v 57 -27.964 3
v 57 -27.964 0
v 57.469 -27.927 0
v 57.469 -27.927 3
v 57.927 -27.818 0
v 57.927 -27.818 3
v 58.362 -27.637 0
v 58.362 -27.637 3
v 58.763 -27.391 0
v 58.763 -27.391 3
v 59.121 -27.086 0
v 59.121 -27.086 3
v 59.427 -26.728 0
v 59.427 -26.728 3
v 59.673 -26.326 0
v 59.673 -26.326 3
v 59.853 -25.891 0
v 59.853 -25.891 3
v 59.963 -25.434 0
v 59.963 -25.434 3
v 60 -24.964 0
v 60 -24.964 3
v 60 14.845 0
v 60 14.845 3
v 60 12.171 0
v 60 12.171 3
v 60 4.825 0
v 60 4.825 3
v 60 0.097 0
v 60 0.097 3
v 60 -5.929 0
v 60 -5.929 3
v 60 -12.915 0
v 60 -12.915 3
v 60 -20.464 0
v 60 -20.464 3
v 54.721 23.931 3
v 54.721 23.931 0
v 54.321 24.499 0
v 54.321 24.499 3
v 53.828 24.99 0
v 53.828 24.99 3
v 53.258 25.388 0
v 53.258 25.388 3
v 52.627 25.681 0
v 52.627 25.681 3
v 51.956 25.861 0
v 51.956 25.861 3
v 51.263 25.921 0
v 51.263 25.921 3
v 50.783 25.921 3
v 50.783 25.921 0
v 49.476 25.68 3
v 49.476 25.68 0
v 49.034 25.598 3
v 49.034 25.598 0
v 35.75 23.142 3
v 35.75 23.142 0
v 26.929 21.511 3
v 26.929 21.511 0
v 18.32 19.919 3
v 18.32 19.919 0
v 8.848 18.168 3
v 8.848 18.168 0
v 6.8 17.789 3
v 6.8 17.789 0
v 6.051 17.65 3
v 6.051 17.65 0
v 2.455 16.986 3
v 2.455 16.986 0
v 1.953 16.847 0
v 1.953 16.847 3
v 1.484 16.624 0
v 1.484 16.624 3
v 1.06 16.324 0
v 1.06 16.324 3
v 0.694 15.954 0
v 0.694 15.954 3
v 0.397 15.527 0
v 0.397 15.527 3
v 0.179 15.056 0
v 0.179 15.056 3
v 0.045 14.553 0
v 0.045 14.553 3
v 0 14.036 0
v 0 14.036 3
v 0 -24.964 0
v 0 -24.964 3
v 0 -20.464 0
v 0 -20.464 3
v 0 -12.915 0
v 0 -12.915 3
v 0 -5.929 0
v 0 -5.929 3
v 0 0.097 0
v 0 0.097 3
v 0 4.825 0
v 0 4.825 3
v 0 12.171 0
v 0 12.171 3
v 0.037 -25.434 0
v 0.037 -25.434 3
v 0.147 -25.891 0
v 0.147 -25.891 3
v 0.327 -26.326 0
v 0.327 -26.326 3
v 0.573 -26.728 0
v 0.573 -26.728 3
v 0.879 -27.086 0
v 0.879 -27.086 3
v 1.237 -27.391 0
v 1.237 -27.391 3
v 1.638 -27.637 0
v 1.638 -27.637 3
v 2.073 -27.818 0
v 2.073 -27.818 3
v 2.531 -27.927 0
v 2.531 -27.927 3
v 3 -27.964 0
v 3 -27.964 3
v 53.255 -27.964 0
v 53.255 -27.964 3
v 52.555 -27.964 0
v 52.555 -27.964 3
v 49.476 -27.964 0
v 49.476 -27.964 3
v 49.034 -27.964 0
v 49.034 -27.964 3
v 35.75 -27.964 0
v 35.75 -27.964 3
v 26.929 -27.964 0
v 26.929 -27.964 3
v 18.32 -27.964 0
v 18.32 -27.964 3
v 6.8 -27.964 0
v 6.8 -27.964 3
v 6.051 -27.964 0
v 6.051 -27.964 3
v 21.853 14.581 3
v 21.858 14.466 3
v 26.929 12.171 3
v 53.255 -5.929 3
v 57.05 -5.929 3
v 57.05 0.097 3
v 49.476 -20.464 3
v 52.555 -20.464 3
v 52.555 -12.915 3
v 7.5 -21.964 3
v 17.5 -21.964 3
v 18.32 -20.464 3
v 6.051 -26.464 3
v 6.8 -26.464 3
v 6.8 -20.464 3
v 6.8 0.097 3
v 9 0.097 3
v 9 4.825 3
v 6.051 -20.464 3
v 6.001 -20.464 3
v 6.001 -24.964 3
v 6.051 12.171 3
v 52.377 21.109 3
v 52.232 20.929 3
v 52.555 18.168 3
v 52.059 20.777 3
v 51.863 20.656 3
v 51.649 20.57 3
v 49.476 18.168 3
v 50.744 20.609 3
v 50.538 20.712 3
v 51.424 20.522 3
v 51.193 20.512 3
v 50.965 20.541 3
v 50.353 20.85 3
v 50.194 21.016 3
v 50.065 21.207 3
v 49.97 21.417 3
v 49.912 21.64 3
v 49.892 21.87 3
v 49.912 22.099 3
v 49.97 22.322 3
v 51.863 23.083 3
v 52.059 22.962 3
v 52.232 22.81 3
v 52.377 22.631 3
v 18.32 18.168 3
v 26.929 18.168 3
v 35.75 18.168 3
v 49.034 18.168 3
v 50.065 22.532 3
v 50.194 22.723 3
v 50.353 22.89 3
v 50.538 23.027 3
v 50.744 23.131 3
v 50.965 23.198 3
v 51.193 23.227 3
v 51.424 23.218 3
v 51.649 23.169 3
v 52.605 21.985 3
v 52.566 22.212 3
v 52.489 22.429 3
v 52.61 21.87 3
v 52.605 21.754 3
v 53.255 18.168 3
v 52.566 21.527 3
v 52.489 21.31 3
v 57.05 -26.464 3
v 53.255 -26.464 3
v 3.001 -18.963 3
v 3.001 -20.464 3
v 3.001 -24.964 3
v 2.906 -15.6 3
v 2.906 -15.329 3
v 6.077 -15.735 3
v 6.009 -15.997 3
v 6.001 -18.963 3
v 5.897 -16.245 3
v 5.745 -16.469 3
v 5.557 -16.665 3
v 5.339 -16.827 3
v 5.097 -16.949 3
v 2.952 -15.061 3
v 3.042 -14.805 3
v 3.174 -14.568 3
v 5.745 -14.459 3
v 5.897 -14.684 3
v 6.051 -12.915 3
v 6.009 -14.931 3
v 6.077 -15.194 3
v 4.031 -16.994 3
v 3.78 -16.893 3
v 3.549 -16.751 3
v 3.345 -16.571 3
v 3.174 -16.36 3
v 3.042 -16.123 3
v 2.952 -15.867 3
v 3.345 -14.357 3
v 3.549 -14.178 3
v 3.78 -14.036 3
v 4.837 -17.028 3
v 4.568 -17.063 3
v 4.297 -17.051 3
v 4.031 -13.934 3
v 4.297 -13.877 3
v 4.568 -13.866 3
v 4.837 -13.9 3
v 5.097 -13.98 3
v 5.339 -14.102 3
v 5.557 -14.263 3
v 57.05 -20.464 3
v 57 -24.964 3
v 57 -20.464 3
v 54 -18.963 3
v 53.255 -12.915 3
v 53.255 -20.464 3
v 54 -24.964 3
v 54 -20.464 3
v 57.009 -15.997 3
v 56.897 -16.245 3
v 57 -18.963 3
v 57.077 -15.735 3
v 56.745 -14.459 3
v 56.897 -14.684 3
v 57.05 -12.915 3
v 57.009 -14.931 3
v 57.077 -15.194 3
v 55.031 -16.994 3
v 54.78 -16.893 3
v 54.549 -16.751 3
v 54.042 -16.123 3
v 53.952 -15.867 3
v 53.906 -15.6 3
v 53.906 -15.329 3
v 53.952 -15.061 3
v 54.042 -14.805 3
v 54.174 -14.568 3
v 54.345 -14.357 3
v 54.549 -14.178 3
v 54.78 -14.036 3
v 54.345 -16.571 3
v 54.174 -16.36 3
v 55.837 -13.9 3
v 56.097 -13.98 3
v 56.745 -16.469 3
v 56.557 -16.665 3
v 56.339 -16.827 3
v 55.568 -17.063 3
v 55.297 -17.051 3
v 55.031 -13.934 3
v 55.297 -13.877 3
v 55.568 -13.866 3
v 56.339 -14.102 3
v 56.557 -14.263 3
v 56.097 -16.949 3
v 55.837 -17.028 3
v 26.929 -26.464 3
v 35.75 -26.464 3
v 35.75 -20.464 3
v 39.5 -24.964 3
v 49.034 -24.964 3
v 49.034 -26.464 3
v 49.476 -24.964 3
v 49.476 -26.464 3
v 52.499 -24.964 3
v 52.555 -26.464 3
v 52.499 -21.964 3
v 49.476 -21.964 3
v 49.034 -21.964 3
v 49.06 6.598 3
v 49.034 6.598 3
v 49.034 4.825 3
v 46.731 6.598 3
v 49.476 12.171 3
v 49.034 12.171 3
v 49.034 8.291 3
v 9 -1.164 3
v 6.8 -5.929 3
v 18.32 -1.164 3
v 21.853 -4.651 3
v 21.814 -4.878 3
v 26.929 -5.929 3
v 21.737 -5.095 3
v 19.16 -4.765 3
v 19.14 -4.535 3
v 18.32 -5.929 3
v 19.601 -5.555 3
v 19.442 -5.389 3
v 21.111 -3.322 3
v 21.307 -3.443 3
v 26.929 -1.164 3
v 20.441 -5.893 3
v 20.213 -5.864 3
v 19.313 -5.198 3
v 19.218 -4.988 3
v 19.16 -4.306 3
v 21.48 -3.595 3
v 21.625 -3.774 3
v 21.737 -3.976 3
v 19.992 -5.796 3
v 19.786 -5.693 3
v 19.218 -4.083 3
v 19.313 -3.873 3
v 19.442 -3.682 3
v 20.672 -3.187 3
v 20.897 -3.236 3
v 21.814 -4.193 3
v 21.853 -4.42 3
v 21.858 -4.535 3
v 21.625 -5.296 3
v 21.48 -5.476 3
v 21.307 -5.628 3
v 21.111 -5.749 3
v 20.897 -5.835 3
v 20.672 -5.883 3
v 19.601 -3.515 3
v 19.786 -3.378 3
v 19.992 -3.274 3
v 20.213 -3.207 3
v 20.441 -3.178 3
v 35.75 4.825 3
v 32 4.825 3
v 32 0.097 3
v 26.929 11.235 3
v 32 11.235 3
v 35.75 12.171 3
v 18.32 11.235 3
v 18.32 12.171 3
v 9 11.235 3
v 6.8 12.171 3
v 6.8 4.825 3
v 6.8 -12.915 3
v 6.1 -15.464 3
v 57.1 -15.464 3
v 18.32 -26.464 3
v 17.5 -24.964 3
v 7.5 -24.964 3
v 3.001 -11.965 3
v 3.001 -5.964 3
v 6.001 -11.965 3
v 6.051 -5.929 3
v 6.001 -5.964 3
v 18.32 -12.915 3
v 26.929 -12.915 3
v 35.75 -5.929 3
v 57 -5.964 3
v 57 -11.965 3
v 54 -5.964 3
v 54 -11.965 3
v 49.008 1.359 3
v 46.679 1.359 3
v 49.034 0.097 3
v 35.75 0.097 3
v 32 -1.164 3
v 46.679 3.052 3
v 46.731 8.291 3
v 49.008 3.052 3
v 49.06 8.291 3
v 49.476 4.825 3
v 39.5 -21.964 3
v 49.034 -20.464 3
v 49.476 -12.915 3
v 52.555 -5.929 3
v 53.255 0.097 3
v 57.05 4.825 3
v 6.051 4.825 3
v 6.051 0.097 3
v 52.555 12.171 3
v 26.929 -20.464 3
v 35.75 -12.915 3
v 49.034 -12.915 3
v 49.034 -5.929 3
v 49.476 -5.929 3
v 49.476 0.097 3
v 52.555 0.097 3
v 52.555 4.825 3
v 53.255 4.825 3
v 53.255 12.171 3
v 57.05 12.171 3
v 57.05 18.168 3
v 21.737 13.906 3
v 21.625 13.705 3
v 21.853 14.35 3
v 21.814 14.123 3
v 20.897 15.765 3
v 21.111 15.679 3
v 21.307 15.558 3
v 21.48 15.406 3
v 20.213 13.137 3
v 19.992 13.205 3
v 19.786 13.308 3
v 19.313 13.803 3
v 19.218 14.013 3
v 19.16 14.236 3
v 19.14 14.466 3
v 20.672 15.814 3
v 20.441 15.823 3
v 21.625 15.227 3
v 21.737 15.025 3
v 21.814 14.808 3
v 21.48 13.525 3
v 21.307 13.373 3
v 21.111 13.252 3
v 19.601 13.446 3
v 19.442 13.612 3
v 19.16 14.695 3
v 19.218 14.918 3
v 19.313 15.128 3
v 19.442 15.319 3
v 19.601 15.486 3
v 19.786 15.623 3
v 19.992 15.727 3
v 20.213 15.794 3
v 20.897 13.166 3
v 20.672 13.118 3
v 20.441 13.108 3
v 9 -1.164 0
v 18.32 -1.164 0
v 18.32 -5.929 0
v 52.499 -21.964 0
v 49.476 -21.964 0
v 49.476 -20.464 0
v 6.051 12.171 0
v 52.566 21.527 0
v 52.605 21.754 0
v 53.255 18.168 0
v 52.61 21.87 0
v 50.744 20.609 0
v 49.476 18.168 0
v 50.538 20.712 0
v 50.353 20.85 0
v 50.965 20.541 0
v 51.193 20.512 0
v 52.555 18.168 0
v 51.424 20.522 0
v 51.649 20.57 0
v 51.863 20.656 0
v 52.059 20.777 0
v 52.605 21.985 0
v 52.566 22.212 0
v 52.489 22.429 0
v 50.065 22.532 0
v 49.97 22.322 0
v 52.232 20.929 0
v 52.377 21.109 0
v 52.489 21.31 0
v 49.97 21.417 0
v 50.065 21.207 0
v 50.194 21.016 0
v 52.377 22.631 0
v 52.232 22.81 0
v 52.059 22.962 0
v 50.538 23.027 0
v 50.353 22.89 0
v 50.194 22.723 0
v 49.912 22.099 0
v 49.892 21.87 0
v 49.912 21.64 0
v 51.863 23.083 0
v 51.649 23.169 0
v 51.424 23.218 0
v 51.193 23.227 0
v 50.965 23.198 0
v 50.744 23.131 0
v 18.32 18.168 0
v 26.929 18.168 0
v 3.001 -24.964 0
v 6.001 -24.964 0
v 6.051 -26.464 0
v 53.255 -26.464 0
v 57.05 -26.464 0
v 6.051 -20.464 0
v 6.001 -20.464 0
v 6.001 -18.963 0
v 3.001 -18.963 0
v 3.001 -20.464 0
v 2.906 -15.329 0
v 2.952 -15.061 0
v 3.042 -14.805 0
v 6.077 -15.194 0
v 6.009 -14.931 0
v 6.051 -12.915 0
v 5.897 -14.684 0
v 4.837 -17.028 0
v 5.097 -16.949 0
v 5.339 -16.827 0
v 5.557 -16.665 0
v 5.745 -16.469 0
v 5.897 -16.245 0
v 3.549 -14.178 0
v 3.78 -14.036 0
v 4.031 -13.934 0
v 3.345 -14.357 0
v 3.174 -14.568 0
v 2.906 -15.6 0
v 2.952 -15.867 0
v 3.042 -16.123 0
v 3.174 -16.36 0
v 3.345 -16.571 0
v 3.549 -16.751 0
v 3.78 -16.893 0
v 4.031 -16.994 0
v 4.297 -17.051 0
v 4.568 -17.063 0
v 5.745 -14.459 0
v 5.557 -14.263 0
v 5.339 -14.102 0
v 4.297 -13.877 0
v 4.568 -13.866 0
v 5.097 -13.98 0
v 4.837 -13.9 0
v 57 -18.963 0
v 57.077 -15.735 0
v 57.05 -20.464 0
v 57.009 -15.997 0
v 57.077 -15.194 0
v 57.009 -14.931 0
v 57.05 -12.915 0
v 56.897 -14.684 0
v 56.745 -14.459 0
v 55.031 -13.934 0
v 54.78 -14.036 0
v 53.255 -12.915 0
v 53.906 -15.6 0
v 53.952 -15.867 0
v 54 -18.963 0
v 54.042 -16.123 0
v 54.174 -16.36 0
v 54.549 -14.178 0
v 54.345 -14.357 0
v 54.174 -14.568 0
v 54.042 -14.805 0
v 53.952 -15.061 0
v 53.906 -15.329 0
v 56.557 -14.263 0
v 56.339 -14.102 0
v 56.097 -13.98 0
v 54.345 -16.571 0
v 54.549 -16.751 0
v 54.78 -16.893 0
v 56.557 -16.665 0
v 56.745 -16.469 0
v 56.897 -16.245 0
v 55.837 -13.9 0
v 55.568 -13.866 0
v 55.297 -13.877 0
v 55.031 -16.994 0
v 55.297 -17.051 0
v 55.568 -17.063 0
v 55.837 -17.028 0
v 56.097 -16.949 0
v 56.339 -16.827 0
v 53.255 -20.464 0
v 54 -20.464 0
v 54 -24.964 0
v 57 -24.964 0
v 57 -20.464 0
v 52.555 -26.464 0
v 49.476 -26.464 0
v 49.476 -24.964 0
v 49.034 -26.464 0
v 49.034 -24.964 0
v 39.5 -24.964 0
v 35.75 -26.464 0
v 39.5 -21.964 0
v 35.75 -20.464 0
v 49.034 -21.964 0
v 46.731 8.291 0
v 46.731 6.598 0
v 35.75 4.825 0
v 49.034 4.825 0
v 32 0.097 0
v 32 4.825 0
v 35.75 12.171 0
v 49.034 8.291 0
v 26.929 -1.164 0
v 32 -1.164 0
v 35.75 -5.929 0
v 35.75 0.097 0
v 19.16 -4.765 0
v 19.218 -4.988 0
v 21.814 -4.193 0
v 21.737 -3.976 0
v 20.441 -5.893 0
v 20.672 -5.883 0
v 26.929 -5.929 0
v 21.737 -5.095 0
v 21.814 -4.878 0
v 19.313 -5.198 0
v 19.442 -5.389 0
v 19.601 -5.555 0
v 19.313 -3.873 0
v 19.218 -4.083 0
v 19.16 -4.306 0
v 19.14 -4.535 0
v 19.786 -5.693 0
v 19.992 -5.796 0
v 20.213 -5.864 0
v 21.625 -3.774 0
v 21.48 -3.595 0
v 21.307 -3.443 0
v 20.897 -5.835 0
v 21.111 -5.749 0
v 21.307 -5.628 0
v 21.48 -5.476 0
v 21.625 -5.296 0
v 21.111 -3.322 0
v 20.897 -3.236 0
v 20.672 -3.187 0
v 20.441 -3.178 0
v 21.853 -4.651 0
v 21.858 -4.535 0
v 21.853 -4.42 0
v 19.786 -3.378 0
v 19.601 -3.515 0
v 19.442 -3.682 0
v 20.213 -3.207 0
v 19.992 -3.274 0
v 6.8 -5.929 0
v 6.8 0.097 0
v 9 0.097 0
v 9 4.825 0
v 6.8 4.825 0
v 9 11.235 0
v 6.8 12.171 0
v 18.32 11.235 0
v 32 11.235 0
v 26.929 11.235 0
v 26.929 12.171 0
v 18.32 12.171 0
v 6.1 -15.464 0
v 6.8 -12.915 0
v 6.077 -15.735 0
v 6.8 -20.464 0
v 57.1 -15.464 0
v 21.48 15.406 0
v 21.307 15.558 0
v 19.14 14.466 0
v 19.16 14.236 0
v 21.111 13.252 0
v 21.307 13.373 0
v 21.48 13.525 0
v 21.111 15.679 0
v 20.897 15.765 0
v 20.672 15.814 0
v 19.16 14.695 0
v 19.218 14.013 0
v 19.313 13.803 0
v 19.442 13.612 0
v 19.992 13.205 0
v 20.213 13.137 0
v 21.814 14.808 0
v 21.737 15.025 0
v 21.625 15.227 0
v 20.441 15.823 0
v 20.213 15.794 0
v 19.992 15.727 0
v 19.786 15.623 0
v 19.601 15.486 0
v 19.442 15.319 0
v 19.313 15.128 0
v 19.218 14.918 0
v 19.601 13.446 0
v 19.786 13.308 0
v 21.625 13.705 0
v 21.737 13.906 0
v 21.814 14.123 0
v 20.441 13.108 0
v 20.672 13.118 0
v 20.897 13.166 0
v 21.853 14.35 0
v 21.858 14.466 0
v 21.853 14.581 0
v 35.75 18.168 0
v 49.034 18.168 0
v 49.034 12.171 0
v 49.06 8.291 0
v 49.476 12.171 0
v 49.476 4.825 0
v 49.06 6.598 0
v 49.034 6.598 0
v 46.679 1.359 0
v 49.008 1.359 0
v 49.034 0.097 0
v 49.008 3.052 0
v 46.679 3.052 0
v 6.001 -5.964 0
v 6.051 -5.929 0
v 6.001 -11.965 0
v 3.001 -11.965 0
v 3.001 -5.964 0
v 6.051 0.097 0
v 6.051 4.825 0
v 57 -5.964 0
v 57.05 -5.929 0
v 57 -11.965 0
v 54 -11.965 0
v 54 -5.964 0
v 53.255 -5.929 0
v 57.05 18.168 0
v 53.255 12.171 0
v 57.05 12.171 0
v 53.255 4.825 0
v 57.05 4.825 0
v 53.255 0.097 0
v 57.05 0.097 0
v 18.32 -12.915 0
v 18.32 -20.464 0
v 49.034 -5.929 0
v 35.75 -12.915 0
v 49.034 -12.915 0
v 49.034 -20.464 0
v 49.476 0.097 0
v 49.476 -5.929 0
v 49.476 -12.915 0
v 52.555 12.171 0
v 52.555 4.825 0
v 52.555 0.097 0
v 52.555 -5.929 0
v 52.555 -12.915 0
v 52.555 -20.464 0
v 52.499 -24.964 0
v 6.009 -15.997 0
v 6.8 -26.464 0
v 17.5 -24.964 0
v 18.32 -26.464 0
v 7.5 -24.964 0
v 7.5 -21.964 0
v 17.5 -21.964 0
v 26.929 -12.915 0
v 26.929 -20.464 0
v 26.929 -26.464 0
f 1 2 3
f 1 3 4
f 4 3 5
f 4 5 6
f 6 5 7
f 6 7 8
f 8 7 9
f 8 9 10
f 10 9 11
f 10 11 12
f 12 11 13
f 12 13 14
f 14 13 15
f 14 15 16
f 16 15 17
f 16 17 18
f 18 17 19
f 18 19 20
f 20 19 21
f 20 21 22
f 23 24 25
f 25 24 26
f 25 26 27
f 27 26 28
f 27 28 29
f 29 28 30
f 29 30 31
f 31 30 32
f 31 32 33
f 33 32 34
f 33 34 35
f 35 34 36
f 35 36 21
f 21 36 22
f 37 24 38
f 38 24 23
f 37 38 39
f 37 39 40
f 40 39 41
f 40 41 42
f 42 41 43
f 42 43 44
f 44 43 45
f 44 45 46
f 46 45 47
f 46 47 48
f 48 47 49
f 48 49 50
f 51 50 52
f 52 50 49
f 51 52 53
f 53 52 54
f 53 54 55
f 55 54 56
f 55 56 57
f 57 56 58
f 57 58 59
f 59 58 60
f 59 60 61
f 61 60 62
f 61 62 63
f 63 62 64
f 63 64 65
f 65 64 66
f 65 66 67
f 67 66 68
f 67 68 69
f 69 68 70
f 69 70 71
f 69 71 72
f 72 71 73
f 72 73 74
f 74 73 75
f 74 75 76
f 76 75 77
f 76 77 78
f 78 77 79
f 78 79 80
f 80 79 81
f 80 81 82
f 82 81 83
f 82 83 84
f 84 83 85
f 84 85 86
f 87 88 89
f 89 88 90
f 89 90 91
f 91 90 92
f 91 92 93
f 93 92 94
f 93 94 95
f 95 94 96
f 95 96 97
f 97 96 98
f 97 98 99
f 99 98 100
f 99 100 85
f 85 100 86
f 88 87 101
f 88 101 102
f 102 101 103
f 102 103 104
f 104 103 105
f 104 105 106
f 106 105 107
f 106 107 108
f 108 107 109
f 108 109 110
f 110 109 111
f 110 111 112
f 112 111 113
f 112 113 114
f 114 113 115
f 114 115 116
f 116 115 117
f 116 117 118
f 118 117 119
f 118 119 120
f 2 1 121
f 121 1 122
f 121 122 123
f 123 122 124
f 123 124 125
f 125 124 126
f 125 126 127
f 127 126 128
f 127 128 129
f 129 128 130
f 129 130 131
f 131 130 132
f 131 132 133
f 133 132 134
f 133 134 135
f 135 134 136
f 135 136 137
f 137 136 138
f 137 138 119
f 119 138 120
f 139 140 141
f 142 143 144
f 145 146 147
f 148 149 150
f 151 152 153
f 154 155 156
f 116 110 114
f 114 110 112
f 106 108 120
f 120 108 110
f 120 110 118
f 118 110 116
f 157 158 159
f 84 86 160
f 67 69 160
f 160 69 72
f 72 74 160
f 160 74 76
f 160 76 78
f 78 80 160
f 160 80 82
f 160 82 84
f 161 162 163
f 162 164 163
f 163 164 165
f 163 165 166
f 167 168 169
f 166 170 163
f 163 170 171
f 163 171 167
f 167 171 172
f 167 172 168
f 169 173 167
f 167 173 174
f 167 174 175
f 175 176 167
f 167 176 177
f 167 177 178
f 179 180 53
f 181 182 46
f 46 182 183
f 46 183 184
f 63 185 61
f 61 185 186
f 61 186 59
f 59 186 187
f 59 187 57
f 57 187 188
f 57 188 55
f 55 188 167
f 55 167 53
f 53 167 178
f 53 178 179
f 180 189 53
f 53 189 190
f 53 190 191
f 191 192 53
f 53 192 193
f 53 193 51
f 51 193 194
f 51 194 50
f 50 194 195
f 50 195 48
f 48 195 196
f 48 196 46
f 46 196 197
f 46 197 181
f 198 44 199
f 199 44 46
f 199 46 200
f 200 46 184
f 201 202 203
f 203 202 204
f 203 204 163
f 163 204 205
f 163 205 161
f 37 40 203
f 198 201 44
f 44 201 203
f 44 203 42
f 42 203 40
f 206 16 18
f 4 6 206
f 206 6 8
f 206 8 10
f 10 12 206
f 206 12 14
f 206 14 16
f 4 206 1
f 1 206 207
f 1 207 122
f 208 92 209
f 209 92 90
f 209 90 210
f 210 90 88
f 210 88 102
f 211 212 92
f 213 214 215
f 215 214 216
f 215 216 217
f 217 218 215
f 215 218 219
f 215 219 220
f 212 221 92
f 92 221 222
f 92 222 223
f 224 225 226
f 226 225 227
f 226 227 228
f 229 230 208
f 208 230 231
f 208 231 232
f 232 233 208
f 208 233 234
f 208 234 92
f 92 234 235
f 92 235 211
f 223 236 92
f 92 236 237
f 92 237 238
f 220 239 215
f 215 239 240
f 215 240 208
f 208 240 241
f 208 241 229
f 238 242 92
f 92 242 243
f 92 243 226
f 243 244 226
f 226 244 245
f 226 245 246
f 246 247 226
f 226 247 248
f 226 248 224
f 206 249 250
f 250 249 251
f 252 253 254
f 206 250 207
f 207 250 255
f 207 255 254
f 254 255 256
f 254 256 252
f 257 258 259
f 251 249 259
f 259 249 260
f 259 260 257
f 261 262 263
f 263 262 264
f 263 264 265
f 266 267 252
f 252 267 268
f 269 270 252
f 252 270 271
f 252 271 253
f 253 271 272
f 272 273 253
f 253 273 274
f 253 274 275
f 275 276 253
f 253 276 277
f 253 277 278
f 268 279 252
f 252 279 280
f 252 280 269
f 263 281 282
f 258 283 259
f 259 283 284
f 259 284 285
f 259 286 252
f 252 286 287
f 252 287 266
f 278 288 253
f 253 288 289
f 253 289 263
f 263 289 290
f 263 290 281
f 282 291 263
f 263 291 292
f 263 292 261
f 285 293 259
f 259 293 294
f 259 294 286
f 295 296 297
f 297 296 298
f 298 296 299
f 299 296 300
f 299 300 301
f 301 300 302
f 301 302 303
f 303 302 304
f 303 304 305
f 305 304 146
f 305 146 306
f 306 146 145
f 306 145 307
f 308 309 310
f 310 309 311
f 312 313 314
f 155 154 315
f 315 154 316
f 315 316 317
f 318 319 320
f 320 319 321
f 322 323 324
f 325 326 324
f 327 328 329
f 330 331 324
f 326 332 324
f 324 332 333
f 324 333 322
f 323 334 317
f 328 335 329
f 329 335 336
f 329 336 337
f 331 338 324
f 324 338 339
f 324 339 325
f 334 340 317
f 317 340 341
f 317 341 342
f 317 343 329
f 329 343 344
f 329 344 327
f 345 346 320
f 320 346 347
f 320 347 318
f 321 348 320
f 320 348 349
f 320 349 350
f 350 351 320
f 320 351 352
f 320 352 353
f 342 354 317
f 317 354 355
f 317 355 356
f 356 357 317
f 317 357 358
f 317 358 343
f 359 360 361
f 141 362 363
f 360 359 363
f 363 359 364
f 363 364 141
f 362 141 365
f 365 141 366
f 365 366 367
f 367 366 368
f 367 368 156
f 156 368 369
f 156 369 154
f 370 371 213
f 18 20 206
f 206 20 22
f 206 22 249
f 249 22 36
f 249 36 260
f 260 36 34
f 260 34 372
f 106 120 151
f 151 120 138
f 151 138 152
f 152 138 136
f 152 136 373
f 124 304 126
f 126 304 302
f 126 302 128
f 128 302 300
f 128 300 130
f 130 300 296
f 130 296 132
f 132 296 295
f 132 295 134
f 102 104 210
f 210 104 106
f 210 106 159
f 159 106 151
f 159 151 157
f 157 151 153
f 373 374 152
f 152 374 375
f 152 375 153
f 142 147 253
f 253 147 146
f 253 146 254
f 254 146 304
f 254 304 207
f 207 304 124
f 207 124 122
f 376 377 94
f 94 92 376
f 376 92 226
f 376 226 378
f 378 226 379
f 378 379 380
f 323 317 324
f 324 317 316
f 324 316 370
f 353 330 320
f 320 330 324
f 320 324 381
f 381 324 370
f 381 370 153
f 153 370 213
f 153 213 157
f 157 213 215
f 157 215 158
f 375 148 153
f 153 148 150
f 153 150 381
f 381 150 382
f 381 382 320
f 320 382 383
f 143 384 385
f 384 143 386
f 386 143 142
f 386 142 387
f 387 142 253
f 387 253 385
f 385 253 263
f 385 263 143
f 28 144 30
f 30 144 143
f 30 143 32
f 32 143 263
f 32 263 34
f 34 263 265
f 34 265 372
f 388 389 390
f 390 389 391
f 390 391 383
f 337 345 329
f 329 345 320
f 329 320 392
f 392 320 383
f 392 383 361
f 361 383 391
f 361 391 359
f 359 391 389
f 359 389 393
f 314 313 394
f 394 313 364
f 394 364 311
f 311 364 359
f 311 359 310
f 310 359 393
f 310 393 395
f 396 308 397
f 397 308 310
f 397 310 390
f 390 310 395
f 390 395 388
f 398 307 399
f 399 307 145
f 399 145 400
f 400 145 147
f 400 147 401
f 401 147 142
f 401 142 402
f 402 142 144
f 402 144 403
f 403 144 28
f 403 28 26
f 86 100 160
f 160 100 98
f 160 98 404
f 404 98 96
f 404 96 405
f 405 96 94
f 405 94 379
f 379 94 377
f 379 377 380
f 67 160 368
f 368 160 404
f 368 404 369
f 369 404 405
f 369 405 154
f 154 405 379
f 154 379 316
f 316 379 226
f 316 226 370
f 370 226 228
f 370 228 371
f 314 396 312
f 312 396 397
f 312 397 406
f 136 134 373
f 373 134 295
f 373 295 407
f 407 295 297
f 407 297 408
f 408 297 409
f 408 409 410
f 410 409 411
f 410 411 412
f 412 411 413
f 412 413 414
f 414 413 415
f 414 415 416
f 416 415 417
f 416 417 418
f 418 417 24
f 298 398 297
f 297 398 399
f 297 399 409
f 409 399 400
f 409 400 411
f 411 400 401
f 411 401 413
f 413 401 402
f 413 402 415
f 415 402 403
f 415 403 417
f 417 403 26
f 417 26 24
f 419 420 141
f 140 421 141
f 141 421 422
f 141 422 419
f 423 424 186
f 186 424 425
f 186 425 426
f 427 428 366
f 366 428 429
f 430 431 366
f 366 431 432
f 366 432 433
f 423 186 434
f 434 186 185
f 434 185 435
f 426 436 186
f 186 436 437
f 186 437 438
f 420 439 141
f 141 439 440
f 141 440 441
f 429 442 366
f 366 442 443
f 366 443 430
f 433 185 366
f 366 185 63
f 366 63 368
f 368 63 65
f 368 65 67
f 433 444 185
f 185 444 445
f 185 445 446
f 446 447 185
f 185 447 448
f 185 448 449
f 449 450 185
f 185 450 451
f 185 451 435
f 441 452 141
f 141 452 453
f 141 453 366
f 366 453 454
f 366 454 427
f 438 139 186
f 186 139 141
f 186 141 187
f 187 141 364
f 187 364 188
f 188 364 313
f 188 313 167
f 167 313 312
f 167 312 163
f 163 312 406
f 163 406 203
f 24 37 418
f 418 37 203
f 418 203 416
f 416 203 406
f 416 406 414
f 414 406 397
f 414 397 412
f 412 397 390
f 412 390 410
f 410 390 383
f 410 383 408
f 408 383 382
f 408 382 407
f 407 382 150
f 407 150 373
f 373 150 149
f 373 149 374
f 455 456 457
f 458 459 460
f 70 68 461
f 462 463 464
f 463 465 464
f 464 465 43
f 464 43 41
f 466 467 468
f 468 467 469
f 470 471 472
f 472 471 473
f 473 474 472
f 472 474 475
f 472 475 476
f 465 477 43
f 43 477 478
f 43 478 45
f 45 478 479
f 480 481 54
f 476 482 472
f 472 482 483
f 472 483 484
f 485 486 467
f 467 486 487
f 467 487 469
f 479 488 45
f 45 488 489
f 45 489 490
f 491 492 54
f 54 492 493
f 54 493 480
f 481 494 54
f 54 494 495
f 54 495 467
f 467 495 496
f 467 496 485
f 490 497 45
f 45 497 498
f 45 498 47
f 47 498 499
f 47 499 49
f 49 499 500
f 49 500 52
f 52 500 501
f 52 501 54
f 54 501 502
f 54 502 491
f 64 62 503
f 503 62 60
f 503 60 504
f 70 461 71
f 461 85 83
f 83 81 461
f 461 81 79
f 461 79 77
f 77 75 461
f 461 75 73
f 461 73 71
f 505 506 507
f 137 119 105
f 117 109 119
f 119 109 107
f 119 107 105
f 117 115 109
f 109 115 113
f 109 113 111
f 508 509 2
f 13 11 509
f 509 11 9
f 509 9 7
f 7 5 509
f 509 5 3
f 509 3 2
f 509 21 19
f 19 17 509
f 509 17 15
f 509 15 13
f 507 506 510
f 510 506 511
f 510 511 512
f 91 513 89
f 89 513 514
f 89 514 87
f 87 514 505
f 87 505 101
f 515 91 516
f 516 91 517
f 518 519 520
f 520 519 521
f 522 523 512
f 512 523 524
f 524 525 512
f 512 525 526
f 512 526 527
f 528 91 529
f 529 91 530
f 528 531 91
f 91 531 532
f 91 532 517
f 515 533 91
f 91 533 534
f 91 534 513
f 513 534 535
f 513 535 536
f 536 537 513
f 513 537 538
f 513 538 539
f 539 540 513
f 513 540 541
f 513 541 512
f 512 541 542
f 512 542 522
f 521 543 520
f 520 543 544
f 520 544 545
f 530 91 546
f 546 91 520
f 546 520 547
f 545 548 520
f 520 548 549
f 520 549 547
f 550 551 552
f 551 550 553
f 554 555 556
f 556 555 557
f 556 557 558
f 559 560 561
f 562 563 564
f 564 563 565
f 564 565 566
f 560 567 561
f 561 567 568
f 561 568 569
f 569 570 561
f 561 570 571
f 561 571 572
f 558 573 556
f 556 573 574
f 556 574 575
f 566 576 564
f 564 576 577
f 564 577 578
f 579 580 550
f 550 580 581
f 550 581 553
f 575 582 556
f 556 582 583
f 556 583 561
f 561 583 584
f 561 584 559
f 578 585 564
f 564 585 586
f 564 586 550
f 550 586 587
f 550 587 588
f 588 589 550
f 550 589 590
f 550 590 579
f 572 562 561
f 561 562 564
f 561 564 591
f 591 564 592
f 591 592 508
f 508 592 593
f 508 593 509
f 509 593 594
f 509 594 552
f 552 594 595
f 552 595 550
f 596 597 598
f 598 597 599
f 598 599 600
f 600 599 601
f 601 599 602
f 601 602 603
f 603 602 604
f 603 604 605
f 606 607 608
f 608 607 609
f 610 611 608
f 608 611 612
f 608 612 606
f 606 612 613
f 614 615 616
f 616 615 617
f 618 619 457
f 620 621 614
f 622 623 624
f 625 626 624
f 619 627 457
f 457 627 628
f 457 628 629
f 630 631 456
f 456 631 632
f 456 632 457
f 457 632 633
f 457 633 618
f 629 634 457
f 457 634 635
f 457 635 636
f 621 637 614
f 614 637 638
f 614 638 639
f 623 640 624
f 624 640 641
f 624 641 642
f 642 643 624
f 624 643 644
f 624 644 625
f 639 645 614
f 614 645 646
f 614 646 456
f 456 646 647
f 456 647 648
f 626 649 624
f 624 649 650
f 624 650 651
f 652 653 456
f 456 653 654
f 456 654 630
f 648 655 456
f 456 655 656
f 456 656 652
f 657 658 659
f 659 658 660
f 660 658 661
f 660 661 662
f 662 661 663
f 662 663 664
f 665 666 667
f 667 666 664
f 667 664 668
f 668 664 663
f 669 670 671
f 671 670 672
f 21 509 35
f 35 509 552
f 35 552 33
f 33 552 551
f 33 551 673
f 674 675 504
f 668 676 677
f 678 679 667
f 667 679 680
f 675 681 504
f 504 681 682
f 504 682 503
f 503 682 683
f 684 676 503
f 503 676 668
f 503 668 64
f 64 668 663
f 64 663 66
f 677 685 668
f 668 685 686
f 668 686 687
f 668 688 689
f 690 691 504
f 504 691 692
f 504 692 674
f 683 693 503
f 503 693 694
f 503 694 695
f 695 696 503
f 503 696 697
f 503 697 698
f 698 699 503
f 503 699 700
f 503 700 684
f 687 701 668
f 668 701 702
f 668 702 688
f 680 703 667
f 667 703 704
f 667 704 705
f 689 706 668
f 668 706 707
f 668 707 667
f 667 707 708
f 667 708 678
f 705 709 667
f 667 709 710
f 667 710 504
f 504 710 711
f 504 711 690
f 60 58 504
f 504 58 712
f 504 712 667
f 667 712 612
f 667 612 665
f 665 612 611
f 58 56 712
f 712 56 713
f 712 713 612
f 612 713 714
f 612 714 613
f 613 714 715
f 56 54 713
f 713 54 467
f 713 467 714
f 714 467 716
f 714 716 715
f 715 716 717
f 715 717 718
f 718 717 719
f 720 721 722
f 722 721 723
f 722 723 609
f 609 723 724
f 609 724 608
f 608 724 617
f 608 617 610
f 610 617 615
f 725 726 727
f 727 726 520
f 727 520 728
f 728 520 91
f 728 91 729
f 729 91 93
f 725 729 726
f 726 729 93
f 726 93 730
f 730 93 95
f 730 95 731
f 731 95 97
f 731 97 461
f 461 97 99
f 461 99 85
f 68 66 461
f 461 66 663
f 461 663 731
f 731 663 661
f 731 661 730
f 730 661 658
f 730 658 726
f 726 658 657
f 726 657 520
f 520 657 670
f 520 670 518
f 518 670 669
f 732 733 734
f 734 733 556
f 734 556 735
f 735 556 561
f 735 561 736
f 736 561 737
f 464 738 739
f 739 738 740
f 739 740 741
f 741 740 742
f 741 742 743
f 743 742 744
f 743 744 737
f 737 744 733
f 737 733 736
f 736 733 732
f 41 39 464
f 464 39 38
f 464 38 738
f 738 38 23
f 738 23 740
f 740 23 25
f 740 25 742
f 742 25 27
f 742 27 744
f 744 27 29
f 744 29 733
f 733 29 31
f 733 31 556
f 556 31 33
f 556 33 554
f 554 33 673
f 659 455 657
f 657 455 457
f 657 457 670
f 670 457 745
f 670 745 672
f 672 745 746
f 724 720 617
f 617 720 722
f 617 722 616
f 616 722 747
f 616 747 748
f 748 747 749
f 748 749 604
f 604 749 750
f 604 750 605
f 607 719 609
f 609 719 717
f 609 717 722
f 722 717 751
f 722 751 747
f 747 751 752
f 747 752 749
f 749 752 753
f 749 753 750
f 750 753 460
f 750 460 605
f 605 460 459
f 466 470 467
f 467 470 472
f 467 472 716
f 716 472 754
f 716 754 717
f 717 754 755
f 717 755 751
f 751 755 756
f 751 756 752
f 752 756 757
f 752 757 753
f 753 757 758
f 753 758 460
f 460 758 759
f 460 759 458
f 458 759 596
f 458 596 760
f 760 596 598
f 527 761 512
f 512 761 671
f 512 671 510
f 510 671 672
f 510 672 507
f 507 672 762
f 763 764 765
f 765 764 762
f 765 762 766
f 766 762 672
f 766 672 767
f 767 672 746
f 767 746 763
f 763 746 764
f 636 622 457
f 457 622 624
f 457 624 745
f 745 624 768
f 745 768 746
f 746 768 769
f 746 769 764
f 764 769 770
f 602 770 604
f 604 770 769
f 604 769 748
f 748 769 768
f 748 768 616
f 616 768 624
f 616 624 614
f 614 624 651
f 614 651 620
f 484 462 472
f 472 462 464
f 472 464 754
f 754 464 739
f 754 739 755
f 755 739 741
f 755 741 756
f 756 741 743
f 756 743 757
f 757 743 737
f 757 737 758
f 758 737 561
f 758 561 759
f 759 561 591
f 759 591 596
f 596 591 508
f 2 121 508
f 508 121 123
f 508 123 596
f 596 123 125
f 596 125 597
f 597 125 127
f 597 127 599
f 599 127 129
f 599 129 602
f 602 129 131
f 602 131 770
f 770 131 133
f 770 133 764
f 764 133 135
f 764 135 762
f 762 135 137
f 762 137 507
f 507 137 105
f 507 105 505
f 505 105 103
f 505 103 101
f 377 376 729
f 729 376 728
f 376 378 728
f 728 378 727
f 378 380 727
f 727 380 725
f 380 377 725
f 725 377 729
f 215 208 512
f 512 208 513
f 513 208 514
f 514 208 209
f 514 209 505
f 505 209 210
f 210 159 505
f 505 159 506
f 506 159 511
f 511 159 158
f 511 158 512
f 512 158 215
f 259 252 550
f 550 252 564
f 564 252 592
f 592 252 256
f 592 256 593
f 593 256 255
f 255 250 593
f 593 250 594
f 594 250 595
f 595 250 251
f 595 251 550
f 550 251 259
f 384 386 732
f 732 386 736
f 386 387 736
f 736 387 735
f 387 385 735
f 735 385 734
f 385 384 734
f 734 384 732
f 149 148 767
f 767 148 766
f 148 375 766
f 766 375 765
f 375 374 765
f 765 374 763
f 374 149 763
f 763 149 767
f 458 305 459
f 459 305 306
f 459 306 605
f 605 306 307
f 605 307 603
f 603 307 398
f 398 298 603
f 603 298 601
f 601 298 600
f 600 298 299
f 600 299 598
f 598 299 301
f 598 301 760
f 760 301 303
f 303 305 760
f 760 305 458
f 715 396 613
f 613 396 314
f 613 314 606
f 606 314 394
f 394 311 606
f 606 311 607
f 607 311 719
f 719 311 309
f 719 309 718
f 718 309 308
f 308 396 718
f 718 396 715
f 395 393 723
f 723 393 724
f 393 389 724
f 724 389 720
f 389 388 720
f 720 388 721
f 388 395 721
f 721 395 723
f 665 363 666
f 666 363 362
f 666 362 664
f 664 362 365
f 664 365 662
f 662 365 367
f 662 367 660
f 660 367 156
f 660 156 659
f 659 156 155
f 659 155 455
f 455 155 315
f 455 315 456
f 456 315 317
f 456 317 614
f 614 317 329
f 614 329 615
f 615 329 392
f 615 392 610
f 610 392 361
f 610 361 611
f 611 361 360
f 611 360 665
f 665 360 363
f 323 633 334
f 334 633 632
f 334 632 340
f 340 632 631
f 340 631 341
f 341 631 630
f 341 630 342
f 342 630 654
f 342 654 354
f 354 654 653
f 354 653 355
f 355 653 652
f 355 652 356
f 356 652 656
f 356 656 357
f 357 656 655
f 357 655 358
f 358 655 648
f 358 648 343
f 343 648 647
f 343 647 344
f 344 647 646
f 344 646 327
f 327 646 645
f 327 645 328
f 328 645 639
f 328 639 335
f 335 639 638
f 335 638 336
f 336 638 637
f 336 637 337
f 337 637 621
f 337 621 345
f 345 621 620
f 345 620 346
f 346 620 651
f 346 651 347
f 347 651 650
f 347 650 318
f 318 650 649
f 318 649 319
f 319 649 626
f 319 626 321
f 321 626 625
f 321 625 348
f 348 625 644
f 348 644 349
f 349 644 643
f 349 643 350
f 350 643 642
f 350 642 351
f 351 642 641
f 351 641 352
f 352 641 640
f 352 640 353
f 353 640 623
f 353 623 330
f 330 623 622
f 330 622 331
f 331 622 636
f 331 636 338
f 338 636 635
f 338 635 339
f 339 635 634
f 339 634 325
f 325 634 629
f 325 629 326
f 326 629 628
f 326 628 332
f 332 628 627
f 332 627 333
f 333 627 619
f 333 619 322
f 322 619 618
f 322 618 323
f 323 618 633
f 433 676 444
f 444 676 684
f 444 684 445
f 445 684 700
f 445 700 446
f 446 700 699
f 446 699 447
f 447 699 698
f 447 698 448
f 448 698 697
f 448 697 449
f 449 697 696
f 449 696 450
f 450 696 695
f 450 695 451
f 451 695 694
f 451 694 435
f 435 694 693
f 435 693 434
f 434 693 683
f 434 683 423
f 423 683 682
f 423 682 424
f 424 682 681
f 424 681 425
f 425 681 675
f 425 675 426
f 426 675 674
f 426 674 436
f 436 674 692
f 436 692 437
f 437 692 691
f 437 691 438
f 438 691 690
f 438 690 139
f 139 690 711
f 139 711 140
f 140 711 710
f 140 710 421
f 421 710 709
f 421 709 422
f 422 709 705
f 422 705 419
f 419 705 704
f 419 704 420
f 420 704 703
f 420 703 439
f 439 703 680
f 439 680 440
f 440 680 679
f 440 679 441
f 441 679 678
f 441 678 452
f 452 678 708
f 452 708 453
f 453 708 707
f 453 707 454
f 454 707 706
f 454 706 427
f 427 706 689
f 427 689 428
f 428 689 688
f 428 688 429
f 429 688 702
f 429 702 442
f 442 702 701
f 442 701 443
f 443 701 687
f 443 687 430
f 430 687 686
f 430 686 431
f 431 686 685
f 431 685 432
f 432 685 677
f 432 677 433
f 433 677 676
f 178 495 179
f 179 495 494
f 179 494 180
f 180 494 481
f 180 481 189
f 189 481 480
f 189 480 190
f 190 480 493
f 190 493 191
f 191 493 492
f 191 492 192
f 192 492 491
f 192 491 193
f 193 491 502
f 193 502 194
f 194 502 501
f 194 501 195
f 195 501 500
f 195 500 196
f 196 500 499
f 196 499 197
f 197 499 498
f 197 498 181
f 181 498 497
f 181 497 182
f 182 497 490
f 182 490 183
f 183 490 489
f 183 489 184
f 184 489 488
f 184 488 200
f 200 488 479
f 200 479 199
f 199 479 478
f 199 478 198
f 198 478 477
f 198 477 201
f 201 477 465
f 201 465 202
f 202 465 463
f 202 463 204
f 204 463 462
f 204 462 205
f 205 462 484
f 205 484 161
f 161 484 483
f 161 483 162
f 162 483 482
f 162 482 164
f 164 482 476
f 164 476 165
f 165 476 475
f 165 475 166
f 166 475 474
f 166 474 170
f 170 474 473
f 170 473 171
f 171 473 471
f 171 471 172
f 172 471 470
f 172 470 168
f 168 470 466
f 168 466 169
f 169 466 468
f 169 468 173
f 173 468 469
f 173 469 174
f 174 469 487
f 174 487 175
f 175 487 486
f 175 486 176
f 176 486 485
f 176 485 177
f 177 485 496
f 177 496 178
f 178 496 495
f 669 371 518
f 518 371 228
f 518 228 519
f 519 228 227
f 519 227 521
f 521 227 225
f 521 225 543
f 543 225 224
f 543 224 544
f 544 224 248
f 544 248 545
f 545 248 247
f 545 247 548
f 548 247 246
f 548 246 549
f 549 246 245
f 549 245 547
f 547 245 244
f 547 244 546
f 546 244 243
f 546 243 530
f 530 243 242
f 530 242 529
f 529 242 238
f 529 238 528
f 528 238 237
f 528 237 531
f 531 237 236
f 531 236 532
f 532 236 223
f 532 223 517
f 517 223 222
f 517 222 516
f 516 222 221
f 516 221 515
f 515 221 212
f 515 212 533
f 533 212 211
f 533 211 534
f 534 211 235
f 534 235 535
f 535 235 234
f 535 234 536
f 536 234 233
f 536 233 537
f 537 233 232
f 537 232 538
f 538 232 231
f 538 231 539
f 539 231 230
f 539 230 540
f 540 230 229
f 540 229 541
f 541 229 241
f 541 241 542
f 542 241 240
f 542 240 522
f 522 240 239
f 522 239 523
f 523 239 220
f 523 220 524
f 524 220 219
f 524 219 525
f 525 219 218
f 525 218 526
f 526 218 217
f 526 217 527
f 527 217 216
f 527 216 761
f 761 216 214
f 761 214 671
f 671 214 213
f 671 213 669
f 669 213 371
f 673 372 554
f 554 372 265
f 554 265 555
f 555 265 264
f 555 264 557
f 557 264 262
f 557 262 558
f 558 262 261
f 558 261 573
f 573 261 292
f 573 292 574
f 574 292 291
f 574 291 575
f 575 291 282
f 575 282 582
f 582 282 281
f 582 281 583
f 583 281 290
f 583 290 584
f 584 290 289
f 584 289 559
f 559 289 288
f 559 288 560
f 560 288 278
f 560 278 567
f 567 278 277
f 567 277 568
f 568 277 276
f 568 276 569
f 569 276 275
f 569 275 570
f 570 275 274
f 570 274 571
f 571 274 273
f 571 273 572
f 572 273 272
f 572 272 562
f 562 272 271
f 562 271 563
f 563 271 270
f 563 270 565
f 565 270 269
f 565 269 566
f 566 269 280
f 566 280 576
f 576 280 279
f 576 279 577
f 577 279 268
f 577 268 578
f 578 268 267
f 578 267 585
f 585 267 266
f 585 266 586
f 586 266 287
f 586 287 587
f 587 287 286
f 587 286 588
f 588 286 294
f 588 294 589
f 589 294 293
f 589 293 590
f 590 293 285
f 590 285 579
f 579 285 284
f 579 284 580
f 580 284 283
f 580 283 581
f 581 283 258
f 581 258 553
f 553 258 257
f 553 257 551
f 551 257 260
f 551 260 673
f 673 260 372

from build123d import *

# Parameters (mm, degrees)
SKETCH_1_R          = 1.359
SKETCH_1_W          = 3
SKETCH_1_H          = 6.001
SKETCH_1_W_2        = 10
SKETCH_1_H_2        = 3
SKETCH_1_W_3        = 12.999
SKETCH_1_W_4        = 2.329
SKETCH_1_H_3        = 1.693
SKETCH_1_W_5        = 23
SKETCH_1_H_4        = 12.399
EXTRUDE_1_DEPTH     = 3
SKETCH_2_R          = 1.6
CUT_EXTRUDE_1_DEPTH = 67.26469212


with BuildPart() as part:
    # 草图1 → 凸台-拉伸1 (new body)
    with BuildSketch(Plane(origin=(0, 0, 0), x_dir=(-1, 0, 0), z_dir=(0, 0, -1))):
        with BuildLine():
            Line((-57, -27.964431369), (-3, -27.964431369))
            ThreePointArc((-3, -27.964431369), (-0.878679656, -27.085751712), (0, -24.964431369))
            Line((0, -24.964431369), (0, 14.035588089))
            ThreePointArc((0, 14.035588089), (-0.693884476, 15.954397926), (-2.454554127, 16.985586191))
            Line((-2.454554127, 16.985586191), (-50.782638999, 25.921305316))
            Line((-50.782638999, 25.921305316), (-51.262778196, 25.921305316))
            ThreePointArc((-51.262778196, 25.921305316), (-53.258114674, 25.388095235), (-54.721484389, 23.930621486))
            Line((-54.721484389, 23.930621486), (-60, 14.844527968))
            Line((-60, 14.844527968), (-60, -24.964431369))
            ThreePointArc((-60, -24.964431369), (-59.121320344, -27.085751712), (-57, -27.964431369))
        make_face()
        with Locations(Location((-55.5, -15.464331369, 0), (0, 0, 180))):
            Circle(SKETCH_1_R, mode=Mode.SUBTRACT)
        with Locations(Location((-4.5, -15.464331369, 0), (0, 0, 180))):
            Circle(SKETCH_1_R, mode=Mode.SUBTRACT)
        with Locations(Location((-20.499, -4.535331369, 0), (0, 0, 180))):
            Circle(SKETCH_1_R, mode=Mode.SUBTRACT)
        with Locations(Location((-20.499, 14.465668631, 0), (0, 0, 180))):
            Circle(SKETCH_1_R, mode=Mode.SUBTRACT)
        with Locations(Location((-51.251, 21.869668631, 0), (0, 0, 180))):
            Circle(SKETCH_1_R, mode=Mode.SUBTRACT)
        with Locations((-4.501, -8.964831369)):
            Rectangle(SKETCH_1_W, SKETCH_1_H, mode=Mode.SUBTRACT)
        with Locations((-4.501, -21.963831369)):
            Rectangle(SKETCH_1_W, SKETCH_1_H, mode=Mode.SUBTRACT)
        with Locations((-55.5, -21.963831369)):
            Rectangle(SKETCH_1_W, SKETCH_1_H, mode=Mode.SUBTRACT)
        with Locations((-55.5, -8.964831369)):
            Rectangle(SKETCH_1_W, SKETCH_1_H, mode=Mode.SUBTRACT)
        with Locations((-12.5, -23.464331369)):
            Rectangle(SKETCH_1_W_2, SKETCH_1_H_2, mode=Mode.SUBTRACT)
        with Locations((-45.9995, -23.464331369)):
            Rectangle(SKETCH_1_W_3, SKETCH_1_H_2, mode=Mode.SUBTRACT)
        with Locations((-47.8955, 7.444168631)):
            Rectangle(SKETCH_1_W_4, SKETCH_1_H_3, mode=Mode.SUBTRACT)
        with Locations((-47.8435, 2.205168631)):
            Rectangle(SKETCH_1_W_4, SKETCH_1_H_3, mode=Mode.SUBTRACT)
        with Locations((-20.5, 5.035168631)):
            Rectangle(SKETCH_1_W_5, SKETCH_1_H_4, mode=Mode.SUBTRACT)
    extrude(amount=-EXTRUDE_1_DEPTH)

    # 草图2 → 切除-拉伸1 (cut, through all)
    with BuildSketch(Plane.XY.offset(3)):
        with Locations((55.5, -15.464331369)):
            Circle(SKETCH_2_R)
        with Locations((4.5, -15.464331369)):
            Circle(SKETCH_2_R)
    extrude(amount=-CUT_EXTRUDE_1_DEPTH, mode=Mode.SUBTRACT)


solid = part.part
